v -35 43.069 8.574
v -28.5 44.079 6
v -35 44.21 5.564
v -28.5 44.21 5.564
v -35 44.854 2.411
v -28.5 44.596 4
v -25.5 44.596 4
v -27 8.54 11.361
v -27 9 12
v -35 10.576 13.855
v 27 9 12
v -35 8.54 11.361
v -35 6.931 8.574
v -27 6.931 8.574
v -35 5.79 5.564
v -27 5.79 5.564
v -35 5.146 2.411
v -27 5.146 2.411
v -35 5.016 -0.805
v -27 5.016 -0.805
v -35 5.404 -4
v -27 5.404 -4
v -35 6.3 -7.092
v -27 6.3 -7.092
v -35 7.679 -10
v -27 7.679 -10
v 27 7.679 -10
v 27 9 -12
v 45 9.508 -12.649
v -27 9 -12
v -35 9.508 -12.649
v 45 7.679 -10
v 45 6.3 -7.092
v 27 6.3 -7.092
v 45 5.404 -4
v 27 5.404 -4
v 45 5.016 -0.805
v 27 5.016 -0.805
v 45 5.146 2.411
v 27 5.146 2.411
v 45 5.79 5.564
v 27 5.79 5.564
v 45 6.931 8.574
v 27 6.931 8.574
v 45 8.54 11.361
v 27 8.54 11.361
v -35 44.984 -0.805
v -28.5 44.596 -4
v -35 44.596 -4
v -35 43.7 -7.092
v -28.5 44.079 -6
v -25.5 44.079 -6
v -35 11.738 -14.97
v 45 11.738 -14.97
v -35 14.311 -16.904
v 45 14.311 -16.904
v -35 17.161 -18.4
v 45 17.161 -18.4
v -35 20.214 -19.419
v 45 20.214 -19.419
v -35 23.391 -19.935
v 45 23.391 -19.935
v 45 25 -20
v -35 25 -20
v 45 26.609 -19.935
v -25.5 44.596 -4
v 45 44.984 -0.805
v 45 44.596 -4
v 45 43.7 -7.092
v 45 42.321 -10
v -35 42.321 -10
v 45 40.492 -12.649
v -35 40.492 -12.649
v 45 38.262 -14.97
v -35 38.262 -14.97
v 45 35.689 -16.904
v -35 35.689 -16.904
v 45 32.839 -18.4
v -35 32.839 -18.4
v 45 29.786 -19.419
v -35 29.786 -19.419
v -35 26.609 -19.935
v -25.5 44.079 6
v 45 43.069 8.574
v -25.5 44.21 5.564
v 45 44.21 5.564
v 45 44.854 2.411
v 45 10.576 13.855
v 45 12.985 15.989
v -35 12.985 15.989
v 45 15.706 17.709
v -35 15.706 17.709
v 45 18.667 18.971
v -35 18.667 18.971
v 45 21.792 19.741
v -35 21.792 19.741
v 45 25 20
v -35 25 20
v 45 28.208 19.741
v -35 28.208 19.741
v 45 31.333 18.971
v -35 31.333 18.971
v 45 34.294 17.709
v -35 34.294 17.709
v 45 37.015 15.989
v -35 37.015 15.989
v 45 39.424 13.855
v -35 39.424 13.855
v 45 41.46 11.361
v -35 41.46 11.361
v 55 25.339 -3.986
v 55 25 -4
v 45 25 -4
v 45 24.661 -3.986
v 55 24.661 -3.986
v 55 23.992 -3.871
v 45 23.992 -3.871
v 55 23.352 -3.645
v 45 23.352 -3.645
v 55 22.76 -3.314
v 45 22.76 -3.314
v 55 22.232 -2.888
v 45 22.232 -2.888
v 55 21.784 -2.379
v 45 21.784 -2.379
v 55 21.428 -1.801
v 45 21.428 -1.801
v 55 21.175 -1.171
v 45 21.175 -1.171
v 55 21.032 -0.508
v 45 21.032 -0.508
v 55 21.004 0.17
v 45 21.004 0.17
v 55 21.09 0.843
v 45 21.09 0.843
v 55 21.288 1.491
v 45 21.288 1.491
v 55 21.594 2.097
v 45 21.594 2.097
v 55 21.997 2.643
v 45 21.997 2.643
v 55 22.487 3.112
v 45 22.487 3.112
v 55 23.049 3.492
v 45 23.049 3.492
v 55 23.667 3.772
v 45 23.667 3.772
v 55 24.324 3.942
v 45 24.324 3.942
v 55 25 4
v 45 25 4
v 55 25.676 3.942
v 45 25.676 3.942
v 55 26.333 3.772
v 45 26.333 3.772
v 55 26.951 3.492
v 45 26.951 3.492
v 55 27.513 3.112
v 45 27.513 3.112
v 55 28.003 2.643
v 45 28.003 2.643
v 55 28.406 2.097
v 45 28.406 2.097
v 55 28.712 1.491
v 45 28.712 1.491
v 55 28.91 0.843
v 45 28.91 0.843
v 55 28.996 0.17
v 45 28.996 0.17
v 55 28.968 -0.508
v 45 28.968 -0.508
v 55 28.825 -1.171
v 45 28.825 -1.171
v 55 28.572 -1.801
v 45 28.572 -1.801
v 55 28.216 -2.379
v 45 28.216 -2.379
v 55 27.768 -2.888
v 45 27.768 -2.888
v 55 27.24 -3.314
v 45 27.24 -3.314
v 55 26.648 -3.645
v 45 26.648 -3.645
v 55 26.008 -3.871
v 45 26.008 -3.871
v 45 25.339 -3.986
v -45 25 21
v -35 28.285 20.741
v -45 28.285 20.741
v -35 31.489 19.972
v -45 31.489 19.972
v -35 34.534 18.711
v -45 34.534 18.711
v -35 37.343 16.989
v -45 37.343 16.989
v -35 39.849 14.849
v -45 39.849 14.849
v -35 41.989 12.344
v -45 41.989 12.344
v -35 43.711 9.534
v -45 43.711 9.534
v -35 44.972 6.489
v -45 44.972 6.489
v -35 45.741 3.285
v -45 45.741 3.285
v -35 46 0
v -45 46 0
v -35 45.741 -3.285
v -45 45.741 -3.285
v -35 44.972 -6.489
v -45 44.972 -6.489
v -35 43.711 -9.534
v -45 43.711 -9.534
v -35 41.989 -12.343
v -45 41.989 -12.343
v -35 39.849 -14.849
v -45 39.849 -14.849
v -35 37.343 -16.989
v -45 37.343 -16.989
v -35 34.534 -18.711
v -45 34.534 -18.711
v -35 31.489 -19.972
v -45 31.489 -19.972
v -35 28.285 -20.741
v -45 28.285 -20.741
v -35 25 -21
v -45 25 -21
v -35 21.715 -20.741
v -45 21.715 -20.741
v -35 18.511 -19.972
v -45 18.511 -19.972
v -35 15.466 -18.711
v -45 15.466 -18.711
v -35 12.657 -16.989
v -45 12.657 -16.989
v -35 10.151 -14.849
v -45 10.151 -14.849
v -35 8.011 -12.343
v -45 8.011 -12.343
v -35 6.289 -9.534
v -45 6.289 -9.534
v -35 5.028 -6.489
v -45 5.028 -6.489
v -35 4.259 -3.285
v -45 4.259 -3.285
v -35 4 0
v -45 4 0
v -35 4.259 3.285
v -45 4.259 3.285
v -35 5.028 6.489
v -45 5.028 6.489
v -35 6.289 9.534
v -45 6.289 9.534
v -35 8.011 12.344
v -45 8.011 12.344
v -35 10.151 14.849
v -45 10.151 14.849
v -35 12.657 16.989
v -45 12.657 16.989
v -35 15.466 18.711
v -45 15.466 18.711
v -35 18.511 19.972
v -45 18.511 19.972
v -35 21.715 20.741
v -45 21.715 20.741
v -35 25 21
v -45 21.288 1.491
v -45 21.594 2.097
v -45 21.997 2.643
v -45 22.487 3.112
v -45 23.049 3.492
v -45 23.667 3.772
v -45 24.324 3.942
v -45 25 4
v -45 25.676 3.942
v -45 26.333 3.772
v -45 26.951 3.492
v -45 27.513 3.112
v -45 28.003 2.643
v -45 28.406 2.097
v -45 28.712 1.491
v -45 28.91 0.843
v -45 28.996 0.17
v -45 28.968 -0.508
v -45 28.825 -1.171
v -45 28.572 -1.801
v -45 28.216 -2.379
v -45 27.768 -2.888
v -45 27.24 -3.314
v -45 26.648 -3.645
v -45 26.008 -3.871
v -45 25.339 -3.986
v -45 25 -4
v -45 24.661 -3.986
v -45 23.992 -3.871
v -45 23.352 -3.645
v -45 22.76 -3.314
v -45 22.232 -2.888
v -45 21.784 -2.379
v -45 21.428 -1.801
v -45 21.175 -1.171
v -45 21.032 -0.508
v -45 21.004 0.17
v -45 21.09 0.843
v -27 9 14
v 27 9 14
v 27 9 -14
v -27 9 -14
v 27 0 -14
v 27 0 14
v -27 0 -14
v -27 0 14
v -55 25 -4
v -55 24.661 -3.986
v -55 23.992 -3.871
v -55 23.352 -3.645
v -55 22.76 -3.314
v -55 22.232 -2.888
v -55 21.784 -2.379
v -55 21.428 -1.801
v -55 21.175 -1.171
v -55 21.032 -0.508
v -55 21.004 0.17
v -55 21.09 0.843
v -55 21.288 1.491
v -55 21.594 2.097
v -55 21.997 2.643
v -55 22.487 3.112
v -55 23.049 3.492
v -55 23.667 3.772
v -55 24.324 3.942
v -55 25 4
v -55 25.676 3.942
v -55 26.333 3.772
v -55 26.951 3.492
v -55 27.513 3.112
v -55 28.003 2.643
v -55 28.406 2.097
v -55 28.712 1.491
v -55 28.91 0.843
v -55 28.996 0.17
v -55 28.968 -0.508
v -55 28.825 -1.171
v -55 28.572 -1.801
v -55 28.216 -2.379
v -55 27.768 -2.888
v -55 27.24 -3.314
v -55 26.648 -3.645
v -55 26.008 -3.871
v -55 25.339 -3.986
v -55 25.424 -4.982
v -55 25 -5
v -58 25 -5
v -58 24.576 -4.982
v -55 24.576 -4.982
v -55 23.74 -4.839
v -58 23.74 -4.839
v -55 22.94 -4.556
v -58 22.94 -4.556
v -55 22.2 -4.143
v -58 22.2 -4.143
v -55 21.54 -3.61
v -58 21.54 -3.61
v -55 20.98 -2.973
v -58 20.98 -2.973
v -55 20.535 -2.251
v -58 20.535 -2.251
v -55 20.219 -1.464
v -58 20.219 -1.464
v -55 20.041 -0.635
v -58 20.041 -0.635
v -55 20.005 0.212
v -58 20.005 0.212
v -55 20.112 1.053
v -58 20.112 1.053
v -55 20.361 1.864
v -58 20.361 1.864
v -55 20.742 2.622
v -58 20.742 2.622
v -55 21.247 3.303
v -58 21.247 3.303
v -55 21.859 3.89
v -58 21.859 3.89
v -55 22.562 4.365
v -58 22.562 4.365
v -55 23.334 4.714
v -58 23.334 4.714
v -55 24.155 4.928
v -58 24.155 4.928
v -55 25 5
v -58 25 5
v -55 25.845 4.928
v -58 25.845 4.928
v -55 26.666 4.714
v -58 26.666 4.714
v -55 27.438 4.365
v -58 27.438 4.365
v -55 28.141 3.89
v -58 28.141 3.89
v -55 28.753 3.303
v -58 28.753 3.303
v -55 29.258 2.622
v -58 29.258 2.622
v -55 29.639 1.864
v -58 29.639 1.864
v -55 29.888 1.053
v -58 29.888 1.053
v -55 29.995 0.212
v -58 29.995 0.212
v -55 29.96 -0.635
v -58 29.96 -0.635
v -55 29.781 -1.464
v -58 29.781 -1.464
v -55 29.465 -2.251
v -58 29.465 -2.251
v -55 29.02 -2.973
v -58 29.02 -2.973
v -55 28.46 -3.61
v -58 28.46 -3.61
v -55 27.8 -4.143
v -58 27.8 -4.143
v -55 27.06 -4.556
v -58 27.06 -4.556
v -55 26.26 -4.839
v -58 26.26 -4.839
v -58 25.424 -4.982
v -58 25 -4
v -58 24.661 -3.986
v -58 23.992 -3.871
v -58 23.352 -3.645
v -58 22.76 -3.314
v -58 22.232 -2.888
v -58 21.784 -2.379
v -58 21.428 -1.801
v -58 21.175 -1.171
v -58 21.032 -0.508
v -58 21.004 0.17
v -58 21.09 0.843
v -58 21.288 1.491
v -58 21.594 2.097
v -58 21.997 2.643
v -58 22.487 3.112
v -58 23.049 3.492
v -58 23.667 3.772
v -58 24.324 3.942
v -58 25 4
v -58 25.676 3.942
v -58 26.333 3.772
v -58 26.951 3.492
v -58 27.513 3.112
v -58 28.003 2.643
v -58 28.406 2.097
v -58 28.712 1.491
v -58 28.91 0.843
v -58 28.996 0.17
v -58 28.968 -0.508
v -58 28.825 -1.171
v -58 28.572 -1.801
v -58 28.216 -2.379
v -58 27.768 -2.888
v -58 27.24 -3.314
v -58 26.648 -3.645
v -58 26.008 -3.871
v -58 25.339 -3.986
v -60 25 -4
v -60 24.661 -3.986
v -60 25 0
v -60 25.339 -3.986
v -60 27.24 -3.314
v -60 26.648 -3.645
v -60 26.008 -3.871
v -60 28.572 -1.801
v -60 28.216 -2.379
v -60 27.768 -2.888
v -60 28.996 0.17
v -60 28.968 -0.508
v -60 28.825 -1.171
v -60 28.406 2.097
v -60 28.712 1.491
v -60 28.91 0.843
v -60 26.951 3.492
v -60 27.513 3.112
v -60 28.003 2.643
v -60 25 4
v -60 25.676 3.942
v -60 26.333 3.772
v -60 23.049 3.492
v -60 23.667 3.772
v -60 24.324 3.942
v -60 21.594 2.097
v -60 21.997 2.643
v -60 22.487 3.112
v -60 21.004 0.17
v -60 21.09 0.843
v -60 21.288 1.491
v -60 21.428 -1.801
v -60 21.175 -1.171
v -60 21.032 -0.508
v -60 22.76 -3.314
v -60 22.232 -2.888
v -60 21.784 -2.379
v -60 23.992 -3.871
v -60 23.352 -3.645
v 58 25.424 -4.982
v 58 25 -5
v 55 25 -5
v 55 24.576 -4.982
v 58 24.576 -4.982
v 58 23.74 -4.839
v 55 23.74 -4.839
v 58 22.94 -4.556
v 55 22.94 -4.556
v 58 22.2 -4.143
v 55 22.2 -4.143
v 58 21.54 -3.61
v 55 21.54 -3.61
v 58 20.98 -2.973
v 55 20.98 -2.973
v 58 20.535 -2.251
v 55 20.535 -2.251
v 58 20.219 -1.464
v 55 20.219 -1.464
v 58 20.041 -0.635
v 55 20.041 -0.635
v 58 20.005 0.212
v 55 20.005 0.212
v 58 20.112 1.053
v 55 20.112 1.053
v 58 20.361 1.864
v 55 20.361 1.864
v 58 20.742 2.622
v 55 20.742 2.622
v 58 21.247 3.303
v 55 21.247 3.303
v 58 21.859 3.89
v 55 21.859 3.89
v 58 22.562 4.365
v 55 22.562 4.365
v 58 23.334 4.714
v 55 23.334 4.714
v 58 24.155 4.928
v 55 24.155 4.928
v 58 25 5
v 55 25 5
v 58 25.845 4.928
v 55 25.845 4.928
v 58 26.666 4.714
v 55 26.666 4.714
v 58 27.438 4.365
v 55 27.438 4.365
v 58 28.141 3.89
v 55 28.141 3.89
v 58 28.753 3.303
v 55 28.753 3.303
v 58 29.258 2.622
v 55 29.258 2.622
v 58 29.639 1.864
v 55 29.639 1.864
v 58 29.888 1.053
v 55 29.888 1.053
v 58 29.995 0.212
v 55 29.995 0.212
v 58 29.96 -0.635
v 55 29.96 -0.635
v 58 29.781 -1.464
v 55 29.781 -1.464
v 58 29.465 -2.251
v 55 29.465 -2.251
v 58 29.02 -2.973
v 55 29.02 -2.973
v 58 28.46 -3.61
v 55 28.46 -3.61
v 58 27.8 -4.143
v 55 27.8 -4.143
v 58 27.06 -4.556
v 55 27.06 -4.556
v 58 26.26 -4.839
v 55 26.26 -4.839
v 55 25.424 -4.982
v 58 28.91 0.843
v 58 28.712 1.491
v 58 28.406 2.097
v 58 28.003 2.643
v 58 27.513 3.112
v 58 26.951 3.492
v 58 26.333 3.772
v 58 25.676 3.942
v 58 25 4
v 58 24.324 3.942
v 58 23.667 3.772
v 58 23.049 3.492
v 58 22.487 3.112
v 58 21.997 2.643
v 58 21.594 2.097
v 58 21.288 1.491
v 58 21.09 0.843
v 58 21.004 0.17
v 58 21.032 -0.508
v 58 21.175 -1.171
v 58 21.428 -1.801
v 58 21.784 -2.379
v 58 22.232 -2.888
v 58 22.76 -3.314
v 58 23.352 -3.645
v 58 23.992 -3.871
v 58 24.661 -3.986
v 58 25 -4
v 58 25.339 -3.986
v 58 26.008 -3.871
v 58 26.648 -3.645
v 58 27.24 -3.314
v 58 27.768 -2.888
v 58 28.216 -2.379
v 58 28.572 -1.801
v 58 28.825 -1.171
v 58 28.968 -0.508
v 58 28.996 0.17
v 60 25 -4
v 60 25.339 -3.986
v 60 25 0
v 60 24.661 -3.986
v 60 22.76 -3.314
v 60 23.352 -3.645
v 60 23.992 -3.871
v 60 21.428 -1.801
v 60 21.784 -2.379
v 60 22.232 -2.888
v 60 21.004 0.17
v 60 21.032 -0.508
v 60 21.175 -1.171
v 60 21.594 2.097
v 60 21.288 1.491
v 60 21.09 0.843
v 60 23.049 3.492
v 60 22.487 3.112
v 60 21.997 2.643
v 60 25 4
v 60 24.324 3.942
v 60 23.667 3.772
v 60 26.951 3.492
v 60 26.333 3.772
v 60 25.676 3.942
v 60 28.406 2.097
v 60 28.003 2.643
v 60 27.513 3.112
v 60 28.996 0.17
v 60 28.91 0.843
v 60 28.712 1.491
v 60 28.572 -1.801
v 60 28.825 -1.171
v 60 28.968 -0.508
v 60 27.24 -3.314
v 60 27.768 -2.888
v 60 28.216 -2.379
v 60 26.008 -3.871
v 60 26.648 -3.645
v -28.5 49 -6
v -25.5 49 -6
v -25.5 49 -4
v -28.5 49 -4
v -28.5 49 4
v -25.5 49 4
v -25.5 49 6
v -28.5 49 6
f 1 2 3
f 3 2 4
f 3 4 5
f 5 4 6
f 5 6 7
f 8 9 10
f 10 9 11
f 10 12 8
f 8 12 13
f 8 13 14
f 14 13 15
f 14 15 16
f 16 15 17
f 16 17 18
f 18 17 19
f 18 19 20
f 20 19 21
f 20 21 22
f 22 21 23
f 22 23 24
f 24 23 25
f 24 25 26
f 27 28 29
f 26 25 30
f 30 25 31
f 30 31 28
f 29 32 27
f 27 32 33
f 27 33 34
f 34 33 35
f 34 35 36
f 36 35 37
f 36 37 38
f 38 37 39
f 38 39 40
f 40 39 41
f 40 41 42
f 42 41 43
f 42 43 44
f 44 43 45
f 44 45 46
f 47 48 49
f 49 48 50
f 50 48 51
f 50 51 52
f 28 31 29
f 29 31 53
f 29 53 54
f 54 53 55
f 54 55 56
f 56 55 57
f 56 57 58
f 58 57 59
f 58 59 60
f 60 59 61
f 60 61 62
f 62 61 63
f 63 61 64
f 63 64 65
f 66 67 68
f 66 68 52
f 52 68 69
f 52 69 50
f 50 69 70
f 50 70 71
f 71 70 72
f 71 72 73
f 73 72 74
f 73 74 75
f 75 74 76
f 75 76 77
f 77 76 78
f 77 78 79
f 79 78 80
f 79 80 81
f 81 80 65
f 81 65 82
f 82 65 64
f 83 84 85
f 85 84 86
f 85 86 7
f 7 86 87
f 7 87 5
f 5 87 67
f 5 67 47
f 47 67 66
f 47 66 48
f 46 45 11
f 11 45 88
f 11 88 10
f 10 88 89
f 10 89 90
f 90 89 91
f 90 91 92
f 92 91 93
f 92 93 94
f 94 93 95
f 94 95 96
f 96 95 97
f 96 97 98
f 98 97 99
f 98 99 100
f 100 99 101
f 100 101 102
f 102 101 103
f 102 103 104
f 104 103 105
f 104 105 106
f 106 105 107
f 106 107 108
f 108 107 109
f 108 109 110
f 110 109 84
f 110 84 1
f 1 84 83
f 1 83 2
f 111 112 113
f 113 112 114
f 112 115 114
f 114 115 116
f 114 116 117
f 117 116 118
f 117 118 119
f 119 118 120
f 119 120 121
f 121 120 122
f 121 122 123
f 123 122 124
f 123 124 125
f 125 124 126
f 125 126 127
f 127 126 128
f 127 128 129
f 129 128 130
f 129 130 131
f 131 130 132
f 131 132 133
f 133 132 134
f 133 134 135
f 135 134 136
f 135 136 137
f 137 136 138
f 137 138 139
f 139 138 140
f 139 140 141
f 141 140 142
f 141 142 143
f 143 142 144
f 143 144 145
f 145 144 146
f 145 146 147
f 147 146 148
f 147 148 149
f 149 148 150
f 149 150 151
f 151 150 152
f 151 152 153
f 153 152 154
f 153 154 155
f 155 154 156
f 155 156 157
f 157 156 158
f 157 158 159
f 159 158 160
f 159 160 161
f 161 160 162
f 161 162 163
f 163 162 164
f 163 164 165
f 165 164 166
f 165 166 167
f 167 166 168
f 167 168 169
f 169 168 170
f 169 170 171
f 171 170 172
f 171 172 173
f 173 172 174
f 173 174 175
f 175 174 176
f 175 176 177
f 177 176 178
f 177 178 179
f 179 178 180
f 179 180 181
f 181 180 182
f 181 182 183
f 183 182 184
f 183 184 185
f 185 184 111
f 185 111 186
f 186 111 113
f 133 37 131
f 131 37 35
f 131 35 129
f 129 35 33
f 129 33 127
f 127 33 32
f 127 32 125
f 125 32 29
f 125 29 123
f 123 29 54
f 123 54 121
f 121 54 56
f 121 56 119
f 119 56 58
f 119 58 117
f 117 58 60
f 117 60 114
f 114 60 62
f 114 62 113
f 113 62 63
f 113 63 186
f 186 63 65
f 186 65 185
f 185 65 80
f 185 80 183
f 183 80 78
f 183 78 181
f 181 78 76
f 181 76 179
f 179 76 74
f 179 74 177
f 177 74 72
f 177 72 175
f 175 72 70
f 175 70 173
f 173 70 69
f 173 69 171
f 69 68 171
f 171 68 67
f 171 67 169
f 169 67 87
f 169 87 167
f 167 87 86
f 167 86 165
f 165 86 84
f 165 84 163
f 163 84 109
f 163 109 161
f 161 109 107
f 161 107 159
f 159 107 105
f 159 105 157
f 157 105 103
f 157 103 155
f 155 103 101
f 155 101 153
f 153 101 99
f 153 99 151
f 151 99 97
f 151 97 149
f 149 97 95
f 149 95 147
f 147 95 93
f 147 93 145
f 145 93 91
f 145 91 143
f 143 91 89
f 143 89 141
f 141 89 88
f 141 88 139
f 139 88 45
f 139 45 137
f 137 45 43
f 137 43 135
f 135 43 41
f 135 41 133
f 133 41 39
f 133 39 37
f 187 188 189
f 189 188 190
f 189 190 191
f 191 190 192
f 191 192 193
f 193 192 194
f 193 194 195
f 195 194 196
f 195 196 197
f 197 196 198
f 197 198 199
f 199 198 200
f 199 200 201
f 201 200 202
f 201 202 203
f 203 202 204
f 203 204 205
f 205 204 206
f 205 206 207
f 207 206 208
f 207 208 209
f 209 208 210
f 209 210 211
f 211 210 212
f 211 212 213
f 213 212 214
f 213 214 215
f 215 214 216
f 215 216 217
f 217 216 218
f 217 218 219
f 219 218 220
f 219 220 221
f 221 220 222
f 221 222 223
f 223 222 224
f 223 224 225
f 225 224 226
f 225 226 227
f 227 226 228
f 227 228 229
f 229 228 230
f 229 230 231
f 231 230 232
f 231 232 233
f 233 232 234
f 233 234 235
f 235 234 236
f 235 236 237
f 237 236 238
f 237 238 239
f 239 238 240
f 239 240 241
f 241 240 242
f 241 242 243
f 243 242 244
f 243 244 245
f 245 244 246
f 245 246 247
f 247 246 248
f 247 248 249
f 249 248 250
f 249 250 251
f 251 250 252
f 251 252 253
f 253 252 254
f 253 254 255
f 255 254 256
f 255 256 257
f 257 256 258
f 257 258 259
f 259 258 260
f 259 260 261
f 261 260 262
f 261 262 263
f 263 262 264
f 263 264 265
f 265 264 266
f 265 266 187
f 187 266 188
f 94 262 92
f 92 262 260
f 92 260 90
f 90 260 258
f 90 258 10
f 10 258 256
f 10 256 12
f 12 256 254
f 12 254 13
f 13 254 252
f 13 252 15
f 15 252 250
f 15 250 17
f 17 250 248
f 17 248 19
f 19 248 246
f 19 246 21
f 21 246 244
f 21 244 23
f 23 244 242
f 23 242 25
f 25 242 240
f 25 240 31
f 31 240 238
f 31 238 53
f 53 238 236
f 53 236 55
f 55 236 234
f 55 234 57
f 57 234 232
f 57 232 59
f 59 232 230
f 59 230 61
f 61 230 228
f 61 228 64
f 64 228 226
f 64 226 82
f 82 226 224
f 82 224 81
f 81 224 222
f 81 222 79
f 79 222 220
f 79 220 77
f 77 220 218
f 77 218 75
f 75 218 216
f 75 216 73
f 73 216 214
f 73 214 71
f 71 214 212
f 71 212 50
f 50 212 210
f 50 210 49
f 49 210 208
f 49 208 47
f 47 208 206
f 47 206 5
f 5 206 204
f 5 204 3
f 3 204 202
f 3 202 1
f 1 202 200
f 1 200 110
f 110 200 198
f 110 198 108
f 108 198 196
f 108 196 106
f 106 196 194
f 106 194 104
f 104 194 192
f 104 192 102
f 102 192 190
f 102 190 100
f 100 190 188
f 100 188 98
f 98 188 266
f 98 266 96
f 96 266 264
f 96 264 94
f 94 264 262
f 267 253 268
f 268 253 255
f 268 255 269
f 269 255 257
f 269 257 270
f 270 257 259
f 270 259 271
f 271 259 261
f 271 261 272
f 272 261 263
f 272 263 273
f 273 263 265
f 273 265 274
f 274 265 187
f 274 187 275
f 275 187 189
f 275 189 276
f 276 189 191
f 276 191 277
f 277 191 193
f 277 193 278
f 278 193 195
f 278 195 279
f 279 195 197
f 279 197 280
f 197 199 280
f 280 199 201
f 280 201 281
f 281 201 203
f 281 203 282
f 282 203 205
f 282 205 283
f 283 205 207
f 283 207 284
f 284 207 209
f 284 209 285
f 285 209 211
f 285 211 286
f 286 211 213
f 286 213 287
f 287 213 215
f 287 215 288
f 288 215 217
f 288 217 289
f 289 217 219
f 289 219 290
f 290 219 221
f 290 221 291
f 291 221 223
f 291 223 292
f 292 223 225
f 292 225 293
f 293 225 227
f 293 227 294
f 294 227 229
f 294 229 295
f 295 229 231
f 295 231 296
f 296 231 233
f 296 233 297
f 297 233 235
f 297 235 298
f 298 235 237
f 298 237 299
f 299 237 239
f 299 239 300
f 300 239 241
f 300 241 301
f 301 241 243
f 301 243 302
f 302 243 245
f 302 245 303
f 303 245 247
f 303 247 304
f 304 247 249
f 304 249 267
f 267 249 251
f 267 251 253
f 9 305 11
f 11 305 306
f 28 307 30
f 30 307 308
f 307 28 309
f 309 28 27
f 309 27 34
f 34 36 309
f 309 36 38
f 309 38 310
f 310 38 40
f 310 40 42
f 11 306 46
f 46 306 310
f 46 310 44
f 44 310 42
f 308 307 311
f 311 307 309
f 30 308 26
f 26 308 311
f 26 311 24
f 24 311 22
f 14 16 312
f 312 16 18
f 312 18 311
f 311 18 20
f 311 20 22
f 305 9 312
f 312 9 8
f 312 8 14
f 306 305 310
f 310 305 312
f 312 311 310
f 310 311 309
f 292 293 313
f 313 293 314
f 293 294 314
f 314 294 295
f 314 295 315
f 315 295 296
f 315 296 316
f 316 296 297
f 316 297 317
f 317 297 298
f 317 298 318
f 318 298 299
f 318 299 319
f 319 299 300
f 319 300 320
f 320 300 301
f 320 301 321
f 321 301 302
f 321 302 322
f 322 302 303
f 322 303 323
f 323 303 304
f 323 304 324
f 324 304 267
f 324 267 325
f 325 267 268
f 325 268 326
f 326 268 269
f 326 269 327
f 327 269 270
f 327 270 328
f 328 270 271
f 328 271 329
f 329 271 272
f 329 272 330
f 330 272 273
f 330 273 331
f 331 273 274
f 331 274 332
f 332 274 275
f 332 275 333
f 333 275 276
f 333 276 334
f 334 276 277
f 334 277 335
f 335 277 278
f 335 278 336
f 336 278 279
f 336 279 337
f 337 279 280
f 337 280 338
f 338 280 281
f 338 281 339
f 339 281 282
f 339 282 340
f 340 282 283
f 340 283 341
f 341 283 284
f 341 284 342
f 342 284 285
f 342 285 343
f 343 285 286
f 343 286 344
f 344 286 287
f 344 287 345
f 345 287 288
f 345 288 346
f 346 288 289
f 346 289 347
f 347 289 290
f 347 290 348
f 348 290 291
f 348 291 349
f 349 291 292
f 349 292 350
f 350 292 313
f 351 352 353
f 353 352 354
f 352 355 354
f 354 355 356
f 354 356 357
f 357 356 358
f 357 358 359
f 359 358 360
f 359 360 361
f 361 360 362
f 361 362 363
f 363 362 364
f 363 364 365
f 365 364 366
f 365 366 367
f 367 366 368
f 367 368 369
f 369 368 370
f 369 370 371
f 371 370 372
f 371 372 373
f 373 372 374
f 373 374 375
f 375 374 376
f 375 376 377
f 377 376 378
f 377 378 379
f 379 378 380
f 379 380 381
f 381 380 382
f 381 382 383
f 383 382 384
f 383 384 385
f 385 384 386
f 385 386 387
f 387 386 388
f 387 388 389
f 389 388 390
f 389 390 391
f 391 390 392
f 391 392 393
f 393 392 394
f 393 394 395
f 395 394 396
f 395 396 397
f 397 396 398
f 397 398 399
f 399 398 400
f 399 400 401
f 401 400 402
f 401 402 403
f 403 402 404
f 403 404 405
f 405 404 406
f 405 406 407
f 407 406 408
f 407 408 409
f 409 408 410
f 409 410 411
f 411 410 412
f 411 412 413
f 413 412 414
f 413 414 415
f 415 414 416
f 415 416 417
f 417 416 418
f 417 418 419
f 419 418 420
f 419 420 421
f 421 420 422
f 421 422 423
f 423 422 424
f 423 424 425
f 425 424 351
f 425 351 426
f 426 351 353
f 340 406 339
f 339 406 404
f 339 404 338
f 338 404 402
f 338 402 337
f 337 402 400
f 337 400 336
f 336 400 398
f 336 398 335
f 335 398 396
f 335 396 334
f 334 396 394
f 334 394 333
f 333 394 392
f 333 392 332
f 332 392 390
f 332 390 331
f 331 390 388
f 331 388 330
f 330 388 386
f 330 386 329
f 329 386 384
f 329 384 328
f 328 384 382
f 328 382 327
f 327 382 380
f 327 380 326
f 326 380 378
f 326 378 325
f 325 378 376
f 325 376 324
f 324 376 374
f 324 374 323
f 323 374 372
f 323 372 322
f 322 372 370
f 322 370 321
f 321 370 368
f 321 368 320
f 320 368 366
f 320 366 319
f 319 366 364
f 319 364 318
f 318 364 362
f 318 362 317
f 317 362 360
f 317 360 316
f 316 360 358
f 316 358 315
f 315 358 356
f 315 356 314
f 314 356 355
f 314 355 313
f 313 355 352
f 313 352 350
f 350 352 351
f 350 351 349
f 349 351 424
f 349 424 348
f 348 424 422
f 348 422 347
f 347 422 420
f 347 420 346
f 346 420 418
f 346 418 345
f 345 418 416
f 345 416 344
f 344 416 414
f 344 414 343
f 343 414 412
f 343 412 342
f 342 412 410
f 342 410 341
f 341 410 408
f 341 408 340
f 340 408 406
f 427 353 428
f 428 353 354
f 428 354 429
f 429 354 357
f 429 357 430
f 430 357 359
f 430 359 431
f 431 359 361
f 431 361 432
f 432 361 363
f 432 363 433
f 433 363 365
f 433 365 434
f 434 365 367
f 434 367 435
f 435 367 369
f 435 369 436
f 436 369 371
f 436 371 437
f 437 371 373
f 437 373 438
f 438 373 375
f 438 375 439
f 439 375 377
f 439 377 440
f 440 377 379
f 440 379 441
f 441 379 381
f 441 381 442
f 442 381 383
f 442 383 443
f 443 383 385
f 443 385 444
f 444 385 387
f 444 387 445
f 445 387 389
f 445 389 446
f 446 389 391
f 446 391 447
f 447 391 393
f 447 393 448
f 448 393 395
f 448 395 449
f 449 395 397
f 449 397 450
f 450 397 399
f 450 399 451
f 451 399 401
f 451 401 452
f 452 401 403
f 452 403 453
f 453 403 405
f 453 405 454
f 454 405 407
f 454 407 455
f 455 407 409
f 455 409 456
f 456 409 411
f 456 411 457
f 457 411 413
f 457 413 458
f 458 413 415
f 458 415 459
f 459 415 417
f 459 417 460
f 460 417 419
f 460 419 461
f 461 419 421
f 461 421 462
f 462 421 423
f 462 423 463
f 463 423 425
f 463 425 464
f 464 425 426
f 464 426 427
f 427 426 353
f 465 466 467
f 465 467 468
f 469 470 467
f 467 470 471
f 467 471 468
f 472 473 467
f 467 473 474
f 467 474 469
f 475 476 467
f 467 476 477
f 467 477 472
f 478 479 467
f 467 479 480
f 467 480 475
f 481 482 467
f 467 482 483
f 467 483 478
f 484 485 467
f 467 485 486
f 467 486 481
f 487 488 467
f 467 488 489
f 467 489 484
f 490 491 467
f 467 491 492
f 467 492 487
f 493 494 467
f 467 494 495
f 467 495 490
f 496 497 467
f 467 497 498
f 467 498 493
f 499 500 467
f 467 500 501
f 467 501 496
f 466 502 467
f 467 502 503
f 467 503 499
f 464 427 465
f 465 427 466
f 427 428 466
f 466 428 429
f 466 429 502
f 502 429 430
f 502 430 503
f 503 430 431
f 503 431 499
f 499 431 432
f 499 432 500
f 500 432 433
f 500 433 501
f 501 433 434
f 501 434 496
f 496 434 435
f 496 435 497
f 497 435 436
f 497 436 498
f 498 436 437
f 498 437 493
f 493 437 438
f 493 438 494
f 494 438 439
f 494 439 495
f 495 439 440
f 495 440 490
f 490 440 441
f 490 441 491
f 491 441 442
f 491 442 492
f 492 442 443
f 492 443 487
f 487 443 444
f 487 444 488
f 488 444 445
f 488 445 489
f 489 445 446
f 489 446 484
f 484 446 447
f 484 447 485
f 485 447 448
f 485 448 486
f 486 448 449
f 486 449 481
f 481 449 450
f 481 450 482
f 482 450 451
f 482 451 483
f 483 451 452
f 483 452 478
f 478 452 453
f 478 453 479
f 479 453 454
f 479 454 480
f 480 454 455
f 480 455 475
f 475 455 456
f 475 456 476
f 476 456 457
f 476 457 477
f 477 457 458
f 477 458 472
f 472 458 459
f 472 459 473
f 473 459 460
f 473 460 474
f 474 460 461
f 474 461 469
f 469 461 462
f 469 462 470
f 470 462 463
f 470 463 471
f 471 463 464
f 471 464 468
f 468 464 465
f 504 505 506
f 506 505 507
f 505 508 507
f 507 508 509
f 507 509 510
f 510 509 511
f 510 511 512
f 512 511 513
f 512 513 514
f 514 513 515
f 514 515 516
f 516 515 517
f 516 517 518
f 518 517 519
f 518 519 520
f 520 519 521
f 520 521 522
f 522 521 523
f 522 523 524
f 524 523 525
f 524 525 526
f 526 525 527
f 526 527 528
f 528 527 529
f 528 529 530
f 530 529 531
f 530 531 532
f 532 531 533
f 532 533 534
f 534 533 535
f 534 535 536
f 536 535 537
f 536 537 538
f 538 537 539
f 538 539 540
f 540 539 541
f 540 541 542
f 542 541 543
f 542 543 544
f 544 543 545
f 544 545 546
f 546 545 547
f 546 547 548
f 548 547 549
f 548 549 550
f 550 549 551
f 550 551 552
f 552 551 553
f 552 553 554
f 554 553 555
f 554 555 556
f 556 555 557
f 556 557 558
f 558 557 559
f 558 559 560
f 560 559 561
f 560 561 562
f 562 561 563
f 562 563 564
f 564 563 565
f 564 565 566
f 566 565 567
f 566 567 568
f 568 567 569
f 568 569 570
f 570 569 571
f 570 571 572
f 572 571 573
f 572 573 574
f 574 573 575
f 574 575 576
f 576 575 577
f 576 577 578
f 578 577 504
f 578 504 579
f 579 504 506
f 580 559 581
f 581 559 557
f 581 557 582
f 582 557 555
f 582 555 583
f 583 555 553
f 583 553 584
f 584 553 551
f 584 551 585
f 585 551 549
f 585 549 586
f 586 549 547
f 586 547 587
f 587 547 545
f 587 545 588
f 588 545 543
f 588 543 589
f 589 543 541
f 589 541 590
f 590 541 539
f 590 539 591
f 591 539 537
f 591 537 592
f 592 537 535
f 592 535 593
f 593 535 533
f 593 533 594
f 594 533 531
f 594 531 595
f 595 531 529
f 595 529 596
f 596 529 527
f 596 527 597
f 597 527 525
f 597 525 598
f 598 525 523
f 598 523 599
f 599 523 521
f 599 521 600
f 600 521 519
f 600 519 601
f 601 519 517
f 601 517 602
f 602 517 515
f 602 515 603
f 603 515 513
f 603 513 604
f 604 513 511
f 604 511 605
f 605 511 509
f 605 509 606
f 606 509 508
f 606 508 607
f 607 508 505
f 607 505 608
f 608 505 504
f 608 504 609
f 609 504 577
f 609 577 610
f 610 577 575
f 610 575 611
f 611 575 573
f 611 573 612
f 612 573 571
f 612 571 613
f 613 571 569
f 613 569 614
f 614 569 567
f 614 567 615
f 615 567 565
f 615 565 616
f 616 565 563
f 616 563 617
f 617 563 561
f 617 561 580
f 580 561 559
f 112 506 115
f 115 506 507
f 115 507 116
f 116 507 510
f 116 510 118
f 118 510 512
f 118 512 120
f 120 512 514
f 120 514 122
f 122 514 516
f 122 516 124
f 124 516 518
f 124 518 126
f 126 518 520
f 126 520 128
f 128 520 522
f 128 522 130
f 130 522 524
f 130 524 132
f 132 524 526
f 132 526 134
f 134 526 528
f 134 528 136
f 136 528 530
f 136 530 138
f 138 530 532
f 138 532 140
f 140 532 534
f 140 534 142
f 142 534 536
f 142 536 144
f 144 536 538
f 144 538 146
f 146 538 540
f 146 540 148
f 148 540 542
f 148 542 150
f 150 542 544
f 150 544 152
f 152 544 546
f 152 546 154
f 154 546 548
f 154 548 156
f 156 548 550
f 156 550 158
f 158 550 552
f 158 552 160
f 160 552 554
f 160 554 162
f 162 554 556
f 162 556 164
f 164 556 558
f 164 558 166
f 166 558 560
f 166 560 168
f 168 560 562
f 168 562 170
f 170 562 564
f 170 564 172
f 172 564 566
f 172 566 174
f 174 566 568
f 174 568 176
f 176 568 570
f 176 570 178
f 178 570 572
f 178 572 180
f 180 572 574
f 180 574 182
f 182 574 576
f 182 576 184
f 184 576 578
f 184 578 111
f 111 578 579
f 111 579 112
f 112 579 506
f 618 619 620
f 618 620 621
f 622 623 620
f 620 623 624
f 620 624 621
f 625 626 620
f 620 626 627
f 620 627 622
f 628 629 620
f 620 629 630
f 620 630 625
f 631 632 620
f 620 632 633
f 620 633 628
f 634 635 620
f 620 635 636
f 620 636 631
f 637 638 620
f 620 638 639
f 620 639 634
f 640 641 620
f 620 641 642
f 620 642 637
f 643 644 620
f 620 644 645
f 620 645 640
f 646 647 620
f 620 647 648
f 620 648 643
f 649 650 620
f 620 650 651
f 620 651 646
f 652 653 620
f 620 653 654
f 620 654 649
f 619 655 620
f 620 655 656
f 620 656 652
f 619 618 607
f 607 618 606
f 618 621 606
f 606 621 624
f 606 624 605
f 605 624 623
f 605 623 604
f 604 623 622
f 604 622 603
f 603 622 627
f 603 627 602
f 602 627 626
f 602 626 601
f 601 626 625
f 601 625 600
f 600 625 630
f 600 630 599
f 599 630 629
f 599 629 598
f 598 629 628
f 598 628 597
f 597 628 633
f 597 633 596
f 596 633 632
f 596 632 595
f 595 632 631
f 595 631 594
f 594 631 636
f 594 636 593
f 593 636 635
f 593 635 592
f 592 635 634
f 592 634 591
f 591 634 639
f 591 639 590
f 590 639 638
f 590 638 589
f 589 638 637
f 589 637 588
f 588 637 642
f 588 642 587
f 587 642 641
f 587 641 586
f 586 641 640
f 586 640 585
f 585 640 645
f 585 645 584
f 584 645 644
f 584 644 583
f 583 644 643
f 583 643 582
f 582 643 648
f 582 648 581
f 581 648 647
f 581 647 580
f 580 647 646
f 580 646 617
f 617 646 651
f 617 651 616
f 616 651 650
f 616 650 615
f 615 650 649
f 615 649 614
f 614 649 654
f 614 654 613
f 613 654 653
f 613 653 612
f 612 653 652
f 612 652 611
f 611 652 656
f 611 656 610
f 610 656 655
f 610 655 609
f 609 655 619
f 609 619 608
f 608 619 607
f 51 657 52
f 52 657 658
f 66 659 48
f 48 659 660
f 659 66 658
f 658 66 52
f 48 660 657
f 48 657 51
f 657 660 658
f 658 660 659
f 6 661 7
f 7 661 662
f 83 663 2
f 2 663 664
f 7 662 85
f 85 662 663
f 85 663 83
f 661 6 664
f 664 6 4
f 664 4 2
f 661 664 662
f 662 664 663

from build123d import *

# Parameters (mm, degrees)
PUMP_BODY_START     = -45
SKETCH1_R           = 20
PUMP_BODY_DEPTH     = 90
MOTOR_ENDBELL_START = -45
SKETCH2_R           = 21
MOTOR_ENDBELL_DEPTH = 10
SKETCH3_W           = 54
SKETCH3_H           = 28
MOUNT_SADDLE_DEPTH  = 9
INLET_BARB_START    = -60
SKETCH4_R           = 4
INLET_BARB_DEPTH    = 15
OUTLET_BARB_START   = 45
SKETCH5_R           = 4
OUTLET_BARB_DEPTH   = 15
INLET_RIDGE_START   = -58
SKETCH6_R           = 5
INLET_RIDGE_DEPTH   = 3
OUTLET_RIDGE_START  = 55
SKETCH7_R           = 5
OUTLET_RIDGE_DEPTH  = 3
TERMINAL_POS_START  = 43
SKETCH8_W           = 3
SKETCH8_H           = 2
TERMINAL_POS_DEPTH  = 6
TERMINAL_NEG_START  = 43
SKETCH9_W           = 3
SKETCH9_H           = 2
TERMINAL_NEG_DEPTH  = 6


with BuildPart() as part:
    # Sketch1 → Pump_Body (new body)
    with BuildSketch(Plane(origin=(0, 0, 0), x_dir=(0, 0, -1), z_dir=(1, 0, 0)).offset(PUMP_BODY_START)):
        with Locations(Location((0, 25, 0), (0, 0, 180))):
            Circle(SKETCH1_R)
    extrude(amount=PUMP_BODY_DEPTH)

    # Sketch2 → Motor_EndBell (add)
    with BuildSketch(Plane(origin=(0, 0, 0), x_dir=(0, 0, -1), z_dir=(1, 0, 0)).offset(MOTOR_ENDBELL_START)):
        with Locations((0, 25)):
            Circle(SKETCH2_R)
    extrude(amount=MOTOR_ENDBELL_DEPTH)

    # Sketch3 → Mount_Saddle (add)
    with BuildSketch(Plane(origin=(0, 0, 0), x_dir=(1, 0, 0), z_dir=(0, 1, 0))):
        Rectangle(SKETCH3_W, SKETCH3_H)
    extrude(amount=MOUNT_SADDLE_DEPTH)

    # Sketch4 → Inlet_Barb (add)
    with BuildSketch(Plane(origin=(0, 0, 0), x_dir=(0, 0, -1), z_dir=(1, 0, 0)).offset(INLET_BARB_START)):
        with Locations((0, 25)):
            Circle(SKETCH4_R)
    extrude(amount=INLET_BARB_DEPTH)

    # Sketch5 → Outlet_Barb (add)
    with BuildSketch(Plane(origin=(0, 0, 0), x_dir=(0, 0, -1), z_dir=(1, 0, 0)).offset(OUTLET_BARB_START)):
        with Locations((0, 25)):
            Circle(SKETCH5_R)
    extrude(amount=OUTLET_BARB_DEPTH)

    # Sketch6 → Inlet_Ridge (add)
    with BuildSketch(Plane(origin=(0, 0, 0), x_dir=(0, 0, -1), z_dir=(1, 0, 0)).offset(INLET_RIDGE_START)):
        with Locations((0, 25)):
            Circle(SKETCH6_R)
    extrude(amount=INLET_RIDGE_DEPTH)

    # Sketch7 → Outlet_Ridge (add)
    with BuildSketch(Plane(origin=(0, 0, 0), x_dir=(0, 0, -1), z_dir=(1, 0, 0)).offset(OUTLET_RIDGE_START)):
        with Locations((0, 25)):
            Circle(SKETCH7_R)
    extrude(amount=OUTLET_RIDGE_DEPTH)

    # Sketch8 → Terminal_Pos (add)
    with BuildSketch(Plane(origin=(0, 0, 0), x_dir=(1, 0, 0), z_dir=(0, 1, 0)).offset(TERMINAL_POS_START)):
        with Locations((-27, 5)):
            Rectangle(SKETCH8_W, SKETCH8_H)
    extrude(amount=TERMINAL_POS_DEPTH)

    # Sketch9 → Terminal_Neg (add)
    with BuildSketch(Plane(origin=(0, 0, 0), x_dir=(1, 0, 0), z_dir=(0, 1, 0)).offset(TERMINAL_NEG_START)):
        with Locations((-27, -5)):
            Rectangle(SKETCH9_W, SKETCH9_H)
    extrude(amount=TERMINAL_NEG_DEPTH)


solid = part.part
